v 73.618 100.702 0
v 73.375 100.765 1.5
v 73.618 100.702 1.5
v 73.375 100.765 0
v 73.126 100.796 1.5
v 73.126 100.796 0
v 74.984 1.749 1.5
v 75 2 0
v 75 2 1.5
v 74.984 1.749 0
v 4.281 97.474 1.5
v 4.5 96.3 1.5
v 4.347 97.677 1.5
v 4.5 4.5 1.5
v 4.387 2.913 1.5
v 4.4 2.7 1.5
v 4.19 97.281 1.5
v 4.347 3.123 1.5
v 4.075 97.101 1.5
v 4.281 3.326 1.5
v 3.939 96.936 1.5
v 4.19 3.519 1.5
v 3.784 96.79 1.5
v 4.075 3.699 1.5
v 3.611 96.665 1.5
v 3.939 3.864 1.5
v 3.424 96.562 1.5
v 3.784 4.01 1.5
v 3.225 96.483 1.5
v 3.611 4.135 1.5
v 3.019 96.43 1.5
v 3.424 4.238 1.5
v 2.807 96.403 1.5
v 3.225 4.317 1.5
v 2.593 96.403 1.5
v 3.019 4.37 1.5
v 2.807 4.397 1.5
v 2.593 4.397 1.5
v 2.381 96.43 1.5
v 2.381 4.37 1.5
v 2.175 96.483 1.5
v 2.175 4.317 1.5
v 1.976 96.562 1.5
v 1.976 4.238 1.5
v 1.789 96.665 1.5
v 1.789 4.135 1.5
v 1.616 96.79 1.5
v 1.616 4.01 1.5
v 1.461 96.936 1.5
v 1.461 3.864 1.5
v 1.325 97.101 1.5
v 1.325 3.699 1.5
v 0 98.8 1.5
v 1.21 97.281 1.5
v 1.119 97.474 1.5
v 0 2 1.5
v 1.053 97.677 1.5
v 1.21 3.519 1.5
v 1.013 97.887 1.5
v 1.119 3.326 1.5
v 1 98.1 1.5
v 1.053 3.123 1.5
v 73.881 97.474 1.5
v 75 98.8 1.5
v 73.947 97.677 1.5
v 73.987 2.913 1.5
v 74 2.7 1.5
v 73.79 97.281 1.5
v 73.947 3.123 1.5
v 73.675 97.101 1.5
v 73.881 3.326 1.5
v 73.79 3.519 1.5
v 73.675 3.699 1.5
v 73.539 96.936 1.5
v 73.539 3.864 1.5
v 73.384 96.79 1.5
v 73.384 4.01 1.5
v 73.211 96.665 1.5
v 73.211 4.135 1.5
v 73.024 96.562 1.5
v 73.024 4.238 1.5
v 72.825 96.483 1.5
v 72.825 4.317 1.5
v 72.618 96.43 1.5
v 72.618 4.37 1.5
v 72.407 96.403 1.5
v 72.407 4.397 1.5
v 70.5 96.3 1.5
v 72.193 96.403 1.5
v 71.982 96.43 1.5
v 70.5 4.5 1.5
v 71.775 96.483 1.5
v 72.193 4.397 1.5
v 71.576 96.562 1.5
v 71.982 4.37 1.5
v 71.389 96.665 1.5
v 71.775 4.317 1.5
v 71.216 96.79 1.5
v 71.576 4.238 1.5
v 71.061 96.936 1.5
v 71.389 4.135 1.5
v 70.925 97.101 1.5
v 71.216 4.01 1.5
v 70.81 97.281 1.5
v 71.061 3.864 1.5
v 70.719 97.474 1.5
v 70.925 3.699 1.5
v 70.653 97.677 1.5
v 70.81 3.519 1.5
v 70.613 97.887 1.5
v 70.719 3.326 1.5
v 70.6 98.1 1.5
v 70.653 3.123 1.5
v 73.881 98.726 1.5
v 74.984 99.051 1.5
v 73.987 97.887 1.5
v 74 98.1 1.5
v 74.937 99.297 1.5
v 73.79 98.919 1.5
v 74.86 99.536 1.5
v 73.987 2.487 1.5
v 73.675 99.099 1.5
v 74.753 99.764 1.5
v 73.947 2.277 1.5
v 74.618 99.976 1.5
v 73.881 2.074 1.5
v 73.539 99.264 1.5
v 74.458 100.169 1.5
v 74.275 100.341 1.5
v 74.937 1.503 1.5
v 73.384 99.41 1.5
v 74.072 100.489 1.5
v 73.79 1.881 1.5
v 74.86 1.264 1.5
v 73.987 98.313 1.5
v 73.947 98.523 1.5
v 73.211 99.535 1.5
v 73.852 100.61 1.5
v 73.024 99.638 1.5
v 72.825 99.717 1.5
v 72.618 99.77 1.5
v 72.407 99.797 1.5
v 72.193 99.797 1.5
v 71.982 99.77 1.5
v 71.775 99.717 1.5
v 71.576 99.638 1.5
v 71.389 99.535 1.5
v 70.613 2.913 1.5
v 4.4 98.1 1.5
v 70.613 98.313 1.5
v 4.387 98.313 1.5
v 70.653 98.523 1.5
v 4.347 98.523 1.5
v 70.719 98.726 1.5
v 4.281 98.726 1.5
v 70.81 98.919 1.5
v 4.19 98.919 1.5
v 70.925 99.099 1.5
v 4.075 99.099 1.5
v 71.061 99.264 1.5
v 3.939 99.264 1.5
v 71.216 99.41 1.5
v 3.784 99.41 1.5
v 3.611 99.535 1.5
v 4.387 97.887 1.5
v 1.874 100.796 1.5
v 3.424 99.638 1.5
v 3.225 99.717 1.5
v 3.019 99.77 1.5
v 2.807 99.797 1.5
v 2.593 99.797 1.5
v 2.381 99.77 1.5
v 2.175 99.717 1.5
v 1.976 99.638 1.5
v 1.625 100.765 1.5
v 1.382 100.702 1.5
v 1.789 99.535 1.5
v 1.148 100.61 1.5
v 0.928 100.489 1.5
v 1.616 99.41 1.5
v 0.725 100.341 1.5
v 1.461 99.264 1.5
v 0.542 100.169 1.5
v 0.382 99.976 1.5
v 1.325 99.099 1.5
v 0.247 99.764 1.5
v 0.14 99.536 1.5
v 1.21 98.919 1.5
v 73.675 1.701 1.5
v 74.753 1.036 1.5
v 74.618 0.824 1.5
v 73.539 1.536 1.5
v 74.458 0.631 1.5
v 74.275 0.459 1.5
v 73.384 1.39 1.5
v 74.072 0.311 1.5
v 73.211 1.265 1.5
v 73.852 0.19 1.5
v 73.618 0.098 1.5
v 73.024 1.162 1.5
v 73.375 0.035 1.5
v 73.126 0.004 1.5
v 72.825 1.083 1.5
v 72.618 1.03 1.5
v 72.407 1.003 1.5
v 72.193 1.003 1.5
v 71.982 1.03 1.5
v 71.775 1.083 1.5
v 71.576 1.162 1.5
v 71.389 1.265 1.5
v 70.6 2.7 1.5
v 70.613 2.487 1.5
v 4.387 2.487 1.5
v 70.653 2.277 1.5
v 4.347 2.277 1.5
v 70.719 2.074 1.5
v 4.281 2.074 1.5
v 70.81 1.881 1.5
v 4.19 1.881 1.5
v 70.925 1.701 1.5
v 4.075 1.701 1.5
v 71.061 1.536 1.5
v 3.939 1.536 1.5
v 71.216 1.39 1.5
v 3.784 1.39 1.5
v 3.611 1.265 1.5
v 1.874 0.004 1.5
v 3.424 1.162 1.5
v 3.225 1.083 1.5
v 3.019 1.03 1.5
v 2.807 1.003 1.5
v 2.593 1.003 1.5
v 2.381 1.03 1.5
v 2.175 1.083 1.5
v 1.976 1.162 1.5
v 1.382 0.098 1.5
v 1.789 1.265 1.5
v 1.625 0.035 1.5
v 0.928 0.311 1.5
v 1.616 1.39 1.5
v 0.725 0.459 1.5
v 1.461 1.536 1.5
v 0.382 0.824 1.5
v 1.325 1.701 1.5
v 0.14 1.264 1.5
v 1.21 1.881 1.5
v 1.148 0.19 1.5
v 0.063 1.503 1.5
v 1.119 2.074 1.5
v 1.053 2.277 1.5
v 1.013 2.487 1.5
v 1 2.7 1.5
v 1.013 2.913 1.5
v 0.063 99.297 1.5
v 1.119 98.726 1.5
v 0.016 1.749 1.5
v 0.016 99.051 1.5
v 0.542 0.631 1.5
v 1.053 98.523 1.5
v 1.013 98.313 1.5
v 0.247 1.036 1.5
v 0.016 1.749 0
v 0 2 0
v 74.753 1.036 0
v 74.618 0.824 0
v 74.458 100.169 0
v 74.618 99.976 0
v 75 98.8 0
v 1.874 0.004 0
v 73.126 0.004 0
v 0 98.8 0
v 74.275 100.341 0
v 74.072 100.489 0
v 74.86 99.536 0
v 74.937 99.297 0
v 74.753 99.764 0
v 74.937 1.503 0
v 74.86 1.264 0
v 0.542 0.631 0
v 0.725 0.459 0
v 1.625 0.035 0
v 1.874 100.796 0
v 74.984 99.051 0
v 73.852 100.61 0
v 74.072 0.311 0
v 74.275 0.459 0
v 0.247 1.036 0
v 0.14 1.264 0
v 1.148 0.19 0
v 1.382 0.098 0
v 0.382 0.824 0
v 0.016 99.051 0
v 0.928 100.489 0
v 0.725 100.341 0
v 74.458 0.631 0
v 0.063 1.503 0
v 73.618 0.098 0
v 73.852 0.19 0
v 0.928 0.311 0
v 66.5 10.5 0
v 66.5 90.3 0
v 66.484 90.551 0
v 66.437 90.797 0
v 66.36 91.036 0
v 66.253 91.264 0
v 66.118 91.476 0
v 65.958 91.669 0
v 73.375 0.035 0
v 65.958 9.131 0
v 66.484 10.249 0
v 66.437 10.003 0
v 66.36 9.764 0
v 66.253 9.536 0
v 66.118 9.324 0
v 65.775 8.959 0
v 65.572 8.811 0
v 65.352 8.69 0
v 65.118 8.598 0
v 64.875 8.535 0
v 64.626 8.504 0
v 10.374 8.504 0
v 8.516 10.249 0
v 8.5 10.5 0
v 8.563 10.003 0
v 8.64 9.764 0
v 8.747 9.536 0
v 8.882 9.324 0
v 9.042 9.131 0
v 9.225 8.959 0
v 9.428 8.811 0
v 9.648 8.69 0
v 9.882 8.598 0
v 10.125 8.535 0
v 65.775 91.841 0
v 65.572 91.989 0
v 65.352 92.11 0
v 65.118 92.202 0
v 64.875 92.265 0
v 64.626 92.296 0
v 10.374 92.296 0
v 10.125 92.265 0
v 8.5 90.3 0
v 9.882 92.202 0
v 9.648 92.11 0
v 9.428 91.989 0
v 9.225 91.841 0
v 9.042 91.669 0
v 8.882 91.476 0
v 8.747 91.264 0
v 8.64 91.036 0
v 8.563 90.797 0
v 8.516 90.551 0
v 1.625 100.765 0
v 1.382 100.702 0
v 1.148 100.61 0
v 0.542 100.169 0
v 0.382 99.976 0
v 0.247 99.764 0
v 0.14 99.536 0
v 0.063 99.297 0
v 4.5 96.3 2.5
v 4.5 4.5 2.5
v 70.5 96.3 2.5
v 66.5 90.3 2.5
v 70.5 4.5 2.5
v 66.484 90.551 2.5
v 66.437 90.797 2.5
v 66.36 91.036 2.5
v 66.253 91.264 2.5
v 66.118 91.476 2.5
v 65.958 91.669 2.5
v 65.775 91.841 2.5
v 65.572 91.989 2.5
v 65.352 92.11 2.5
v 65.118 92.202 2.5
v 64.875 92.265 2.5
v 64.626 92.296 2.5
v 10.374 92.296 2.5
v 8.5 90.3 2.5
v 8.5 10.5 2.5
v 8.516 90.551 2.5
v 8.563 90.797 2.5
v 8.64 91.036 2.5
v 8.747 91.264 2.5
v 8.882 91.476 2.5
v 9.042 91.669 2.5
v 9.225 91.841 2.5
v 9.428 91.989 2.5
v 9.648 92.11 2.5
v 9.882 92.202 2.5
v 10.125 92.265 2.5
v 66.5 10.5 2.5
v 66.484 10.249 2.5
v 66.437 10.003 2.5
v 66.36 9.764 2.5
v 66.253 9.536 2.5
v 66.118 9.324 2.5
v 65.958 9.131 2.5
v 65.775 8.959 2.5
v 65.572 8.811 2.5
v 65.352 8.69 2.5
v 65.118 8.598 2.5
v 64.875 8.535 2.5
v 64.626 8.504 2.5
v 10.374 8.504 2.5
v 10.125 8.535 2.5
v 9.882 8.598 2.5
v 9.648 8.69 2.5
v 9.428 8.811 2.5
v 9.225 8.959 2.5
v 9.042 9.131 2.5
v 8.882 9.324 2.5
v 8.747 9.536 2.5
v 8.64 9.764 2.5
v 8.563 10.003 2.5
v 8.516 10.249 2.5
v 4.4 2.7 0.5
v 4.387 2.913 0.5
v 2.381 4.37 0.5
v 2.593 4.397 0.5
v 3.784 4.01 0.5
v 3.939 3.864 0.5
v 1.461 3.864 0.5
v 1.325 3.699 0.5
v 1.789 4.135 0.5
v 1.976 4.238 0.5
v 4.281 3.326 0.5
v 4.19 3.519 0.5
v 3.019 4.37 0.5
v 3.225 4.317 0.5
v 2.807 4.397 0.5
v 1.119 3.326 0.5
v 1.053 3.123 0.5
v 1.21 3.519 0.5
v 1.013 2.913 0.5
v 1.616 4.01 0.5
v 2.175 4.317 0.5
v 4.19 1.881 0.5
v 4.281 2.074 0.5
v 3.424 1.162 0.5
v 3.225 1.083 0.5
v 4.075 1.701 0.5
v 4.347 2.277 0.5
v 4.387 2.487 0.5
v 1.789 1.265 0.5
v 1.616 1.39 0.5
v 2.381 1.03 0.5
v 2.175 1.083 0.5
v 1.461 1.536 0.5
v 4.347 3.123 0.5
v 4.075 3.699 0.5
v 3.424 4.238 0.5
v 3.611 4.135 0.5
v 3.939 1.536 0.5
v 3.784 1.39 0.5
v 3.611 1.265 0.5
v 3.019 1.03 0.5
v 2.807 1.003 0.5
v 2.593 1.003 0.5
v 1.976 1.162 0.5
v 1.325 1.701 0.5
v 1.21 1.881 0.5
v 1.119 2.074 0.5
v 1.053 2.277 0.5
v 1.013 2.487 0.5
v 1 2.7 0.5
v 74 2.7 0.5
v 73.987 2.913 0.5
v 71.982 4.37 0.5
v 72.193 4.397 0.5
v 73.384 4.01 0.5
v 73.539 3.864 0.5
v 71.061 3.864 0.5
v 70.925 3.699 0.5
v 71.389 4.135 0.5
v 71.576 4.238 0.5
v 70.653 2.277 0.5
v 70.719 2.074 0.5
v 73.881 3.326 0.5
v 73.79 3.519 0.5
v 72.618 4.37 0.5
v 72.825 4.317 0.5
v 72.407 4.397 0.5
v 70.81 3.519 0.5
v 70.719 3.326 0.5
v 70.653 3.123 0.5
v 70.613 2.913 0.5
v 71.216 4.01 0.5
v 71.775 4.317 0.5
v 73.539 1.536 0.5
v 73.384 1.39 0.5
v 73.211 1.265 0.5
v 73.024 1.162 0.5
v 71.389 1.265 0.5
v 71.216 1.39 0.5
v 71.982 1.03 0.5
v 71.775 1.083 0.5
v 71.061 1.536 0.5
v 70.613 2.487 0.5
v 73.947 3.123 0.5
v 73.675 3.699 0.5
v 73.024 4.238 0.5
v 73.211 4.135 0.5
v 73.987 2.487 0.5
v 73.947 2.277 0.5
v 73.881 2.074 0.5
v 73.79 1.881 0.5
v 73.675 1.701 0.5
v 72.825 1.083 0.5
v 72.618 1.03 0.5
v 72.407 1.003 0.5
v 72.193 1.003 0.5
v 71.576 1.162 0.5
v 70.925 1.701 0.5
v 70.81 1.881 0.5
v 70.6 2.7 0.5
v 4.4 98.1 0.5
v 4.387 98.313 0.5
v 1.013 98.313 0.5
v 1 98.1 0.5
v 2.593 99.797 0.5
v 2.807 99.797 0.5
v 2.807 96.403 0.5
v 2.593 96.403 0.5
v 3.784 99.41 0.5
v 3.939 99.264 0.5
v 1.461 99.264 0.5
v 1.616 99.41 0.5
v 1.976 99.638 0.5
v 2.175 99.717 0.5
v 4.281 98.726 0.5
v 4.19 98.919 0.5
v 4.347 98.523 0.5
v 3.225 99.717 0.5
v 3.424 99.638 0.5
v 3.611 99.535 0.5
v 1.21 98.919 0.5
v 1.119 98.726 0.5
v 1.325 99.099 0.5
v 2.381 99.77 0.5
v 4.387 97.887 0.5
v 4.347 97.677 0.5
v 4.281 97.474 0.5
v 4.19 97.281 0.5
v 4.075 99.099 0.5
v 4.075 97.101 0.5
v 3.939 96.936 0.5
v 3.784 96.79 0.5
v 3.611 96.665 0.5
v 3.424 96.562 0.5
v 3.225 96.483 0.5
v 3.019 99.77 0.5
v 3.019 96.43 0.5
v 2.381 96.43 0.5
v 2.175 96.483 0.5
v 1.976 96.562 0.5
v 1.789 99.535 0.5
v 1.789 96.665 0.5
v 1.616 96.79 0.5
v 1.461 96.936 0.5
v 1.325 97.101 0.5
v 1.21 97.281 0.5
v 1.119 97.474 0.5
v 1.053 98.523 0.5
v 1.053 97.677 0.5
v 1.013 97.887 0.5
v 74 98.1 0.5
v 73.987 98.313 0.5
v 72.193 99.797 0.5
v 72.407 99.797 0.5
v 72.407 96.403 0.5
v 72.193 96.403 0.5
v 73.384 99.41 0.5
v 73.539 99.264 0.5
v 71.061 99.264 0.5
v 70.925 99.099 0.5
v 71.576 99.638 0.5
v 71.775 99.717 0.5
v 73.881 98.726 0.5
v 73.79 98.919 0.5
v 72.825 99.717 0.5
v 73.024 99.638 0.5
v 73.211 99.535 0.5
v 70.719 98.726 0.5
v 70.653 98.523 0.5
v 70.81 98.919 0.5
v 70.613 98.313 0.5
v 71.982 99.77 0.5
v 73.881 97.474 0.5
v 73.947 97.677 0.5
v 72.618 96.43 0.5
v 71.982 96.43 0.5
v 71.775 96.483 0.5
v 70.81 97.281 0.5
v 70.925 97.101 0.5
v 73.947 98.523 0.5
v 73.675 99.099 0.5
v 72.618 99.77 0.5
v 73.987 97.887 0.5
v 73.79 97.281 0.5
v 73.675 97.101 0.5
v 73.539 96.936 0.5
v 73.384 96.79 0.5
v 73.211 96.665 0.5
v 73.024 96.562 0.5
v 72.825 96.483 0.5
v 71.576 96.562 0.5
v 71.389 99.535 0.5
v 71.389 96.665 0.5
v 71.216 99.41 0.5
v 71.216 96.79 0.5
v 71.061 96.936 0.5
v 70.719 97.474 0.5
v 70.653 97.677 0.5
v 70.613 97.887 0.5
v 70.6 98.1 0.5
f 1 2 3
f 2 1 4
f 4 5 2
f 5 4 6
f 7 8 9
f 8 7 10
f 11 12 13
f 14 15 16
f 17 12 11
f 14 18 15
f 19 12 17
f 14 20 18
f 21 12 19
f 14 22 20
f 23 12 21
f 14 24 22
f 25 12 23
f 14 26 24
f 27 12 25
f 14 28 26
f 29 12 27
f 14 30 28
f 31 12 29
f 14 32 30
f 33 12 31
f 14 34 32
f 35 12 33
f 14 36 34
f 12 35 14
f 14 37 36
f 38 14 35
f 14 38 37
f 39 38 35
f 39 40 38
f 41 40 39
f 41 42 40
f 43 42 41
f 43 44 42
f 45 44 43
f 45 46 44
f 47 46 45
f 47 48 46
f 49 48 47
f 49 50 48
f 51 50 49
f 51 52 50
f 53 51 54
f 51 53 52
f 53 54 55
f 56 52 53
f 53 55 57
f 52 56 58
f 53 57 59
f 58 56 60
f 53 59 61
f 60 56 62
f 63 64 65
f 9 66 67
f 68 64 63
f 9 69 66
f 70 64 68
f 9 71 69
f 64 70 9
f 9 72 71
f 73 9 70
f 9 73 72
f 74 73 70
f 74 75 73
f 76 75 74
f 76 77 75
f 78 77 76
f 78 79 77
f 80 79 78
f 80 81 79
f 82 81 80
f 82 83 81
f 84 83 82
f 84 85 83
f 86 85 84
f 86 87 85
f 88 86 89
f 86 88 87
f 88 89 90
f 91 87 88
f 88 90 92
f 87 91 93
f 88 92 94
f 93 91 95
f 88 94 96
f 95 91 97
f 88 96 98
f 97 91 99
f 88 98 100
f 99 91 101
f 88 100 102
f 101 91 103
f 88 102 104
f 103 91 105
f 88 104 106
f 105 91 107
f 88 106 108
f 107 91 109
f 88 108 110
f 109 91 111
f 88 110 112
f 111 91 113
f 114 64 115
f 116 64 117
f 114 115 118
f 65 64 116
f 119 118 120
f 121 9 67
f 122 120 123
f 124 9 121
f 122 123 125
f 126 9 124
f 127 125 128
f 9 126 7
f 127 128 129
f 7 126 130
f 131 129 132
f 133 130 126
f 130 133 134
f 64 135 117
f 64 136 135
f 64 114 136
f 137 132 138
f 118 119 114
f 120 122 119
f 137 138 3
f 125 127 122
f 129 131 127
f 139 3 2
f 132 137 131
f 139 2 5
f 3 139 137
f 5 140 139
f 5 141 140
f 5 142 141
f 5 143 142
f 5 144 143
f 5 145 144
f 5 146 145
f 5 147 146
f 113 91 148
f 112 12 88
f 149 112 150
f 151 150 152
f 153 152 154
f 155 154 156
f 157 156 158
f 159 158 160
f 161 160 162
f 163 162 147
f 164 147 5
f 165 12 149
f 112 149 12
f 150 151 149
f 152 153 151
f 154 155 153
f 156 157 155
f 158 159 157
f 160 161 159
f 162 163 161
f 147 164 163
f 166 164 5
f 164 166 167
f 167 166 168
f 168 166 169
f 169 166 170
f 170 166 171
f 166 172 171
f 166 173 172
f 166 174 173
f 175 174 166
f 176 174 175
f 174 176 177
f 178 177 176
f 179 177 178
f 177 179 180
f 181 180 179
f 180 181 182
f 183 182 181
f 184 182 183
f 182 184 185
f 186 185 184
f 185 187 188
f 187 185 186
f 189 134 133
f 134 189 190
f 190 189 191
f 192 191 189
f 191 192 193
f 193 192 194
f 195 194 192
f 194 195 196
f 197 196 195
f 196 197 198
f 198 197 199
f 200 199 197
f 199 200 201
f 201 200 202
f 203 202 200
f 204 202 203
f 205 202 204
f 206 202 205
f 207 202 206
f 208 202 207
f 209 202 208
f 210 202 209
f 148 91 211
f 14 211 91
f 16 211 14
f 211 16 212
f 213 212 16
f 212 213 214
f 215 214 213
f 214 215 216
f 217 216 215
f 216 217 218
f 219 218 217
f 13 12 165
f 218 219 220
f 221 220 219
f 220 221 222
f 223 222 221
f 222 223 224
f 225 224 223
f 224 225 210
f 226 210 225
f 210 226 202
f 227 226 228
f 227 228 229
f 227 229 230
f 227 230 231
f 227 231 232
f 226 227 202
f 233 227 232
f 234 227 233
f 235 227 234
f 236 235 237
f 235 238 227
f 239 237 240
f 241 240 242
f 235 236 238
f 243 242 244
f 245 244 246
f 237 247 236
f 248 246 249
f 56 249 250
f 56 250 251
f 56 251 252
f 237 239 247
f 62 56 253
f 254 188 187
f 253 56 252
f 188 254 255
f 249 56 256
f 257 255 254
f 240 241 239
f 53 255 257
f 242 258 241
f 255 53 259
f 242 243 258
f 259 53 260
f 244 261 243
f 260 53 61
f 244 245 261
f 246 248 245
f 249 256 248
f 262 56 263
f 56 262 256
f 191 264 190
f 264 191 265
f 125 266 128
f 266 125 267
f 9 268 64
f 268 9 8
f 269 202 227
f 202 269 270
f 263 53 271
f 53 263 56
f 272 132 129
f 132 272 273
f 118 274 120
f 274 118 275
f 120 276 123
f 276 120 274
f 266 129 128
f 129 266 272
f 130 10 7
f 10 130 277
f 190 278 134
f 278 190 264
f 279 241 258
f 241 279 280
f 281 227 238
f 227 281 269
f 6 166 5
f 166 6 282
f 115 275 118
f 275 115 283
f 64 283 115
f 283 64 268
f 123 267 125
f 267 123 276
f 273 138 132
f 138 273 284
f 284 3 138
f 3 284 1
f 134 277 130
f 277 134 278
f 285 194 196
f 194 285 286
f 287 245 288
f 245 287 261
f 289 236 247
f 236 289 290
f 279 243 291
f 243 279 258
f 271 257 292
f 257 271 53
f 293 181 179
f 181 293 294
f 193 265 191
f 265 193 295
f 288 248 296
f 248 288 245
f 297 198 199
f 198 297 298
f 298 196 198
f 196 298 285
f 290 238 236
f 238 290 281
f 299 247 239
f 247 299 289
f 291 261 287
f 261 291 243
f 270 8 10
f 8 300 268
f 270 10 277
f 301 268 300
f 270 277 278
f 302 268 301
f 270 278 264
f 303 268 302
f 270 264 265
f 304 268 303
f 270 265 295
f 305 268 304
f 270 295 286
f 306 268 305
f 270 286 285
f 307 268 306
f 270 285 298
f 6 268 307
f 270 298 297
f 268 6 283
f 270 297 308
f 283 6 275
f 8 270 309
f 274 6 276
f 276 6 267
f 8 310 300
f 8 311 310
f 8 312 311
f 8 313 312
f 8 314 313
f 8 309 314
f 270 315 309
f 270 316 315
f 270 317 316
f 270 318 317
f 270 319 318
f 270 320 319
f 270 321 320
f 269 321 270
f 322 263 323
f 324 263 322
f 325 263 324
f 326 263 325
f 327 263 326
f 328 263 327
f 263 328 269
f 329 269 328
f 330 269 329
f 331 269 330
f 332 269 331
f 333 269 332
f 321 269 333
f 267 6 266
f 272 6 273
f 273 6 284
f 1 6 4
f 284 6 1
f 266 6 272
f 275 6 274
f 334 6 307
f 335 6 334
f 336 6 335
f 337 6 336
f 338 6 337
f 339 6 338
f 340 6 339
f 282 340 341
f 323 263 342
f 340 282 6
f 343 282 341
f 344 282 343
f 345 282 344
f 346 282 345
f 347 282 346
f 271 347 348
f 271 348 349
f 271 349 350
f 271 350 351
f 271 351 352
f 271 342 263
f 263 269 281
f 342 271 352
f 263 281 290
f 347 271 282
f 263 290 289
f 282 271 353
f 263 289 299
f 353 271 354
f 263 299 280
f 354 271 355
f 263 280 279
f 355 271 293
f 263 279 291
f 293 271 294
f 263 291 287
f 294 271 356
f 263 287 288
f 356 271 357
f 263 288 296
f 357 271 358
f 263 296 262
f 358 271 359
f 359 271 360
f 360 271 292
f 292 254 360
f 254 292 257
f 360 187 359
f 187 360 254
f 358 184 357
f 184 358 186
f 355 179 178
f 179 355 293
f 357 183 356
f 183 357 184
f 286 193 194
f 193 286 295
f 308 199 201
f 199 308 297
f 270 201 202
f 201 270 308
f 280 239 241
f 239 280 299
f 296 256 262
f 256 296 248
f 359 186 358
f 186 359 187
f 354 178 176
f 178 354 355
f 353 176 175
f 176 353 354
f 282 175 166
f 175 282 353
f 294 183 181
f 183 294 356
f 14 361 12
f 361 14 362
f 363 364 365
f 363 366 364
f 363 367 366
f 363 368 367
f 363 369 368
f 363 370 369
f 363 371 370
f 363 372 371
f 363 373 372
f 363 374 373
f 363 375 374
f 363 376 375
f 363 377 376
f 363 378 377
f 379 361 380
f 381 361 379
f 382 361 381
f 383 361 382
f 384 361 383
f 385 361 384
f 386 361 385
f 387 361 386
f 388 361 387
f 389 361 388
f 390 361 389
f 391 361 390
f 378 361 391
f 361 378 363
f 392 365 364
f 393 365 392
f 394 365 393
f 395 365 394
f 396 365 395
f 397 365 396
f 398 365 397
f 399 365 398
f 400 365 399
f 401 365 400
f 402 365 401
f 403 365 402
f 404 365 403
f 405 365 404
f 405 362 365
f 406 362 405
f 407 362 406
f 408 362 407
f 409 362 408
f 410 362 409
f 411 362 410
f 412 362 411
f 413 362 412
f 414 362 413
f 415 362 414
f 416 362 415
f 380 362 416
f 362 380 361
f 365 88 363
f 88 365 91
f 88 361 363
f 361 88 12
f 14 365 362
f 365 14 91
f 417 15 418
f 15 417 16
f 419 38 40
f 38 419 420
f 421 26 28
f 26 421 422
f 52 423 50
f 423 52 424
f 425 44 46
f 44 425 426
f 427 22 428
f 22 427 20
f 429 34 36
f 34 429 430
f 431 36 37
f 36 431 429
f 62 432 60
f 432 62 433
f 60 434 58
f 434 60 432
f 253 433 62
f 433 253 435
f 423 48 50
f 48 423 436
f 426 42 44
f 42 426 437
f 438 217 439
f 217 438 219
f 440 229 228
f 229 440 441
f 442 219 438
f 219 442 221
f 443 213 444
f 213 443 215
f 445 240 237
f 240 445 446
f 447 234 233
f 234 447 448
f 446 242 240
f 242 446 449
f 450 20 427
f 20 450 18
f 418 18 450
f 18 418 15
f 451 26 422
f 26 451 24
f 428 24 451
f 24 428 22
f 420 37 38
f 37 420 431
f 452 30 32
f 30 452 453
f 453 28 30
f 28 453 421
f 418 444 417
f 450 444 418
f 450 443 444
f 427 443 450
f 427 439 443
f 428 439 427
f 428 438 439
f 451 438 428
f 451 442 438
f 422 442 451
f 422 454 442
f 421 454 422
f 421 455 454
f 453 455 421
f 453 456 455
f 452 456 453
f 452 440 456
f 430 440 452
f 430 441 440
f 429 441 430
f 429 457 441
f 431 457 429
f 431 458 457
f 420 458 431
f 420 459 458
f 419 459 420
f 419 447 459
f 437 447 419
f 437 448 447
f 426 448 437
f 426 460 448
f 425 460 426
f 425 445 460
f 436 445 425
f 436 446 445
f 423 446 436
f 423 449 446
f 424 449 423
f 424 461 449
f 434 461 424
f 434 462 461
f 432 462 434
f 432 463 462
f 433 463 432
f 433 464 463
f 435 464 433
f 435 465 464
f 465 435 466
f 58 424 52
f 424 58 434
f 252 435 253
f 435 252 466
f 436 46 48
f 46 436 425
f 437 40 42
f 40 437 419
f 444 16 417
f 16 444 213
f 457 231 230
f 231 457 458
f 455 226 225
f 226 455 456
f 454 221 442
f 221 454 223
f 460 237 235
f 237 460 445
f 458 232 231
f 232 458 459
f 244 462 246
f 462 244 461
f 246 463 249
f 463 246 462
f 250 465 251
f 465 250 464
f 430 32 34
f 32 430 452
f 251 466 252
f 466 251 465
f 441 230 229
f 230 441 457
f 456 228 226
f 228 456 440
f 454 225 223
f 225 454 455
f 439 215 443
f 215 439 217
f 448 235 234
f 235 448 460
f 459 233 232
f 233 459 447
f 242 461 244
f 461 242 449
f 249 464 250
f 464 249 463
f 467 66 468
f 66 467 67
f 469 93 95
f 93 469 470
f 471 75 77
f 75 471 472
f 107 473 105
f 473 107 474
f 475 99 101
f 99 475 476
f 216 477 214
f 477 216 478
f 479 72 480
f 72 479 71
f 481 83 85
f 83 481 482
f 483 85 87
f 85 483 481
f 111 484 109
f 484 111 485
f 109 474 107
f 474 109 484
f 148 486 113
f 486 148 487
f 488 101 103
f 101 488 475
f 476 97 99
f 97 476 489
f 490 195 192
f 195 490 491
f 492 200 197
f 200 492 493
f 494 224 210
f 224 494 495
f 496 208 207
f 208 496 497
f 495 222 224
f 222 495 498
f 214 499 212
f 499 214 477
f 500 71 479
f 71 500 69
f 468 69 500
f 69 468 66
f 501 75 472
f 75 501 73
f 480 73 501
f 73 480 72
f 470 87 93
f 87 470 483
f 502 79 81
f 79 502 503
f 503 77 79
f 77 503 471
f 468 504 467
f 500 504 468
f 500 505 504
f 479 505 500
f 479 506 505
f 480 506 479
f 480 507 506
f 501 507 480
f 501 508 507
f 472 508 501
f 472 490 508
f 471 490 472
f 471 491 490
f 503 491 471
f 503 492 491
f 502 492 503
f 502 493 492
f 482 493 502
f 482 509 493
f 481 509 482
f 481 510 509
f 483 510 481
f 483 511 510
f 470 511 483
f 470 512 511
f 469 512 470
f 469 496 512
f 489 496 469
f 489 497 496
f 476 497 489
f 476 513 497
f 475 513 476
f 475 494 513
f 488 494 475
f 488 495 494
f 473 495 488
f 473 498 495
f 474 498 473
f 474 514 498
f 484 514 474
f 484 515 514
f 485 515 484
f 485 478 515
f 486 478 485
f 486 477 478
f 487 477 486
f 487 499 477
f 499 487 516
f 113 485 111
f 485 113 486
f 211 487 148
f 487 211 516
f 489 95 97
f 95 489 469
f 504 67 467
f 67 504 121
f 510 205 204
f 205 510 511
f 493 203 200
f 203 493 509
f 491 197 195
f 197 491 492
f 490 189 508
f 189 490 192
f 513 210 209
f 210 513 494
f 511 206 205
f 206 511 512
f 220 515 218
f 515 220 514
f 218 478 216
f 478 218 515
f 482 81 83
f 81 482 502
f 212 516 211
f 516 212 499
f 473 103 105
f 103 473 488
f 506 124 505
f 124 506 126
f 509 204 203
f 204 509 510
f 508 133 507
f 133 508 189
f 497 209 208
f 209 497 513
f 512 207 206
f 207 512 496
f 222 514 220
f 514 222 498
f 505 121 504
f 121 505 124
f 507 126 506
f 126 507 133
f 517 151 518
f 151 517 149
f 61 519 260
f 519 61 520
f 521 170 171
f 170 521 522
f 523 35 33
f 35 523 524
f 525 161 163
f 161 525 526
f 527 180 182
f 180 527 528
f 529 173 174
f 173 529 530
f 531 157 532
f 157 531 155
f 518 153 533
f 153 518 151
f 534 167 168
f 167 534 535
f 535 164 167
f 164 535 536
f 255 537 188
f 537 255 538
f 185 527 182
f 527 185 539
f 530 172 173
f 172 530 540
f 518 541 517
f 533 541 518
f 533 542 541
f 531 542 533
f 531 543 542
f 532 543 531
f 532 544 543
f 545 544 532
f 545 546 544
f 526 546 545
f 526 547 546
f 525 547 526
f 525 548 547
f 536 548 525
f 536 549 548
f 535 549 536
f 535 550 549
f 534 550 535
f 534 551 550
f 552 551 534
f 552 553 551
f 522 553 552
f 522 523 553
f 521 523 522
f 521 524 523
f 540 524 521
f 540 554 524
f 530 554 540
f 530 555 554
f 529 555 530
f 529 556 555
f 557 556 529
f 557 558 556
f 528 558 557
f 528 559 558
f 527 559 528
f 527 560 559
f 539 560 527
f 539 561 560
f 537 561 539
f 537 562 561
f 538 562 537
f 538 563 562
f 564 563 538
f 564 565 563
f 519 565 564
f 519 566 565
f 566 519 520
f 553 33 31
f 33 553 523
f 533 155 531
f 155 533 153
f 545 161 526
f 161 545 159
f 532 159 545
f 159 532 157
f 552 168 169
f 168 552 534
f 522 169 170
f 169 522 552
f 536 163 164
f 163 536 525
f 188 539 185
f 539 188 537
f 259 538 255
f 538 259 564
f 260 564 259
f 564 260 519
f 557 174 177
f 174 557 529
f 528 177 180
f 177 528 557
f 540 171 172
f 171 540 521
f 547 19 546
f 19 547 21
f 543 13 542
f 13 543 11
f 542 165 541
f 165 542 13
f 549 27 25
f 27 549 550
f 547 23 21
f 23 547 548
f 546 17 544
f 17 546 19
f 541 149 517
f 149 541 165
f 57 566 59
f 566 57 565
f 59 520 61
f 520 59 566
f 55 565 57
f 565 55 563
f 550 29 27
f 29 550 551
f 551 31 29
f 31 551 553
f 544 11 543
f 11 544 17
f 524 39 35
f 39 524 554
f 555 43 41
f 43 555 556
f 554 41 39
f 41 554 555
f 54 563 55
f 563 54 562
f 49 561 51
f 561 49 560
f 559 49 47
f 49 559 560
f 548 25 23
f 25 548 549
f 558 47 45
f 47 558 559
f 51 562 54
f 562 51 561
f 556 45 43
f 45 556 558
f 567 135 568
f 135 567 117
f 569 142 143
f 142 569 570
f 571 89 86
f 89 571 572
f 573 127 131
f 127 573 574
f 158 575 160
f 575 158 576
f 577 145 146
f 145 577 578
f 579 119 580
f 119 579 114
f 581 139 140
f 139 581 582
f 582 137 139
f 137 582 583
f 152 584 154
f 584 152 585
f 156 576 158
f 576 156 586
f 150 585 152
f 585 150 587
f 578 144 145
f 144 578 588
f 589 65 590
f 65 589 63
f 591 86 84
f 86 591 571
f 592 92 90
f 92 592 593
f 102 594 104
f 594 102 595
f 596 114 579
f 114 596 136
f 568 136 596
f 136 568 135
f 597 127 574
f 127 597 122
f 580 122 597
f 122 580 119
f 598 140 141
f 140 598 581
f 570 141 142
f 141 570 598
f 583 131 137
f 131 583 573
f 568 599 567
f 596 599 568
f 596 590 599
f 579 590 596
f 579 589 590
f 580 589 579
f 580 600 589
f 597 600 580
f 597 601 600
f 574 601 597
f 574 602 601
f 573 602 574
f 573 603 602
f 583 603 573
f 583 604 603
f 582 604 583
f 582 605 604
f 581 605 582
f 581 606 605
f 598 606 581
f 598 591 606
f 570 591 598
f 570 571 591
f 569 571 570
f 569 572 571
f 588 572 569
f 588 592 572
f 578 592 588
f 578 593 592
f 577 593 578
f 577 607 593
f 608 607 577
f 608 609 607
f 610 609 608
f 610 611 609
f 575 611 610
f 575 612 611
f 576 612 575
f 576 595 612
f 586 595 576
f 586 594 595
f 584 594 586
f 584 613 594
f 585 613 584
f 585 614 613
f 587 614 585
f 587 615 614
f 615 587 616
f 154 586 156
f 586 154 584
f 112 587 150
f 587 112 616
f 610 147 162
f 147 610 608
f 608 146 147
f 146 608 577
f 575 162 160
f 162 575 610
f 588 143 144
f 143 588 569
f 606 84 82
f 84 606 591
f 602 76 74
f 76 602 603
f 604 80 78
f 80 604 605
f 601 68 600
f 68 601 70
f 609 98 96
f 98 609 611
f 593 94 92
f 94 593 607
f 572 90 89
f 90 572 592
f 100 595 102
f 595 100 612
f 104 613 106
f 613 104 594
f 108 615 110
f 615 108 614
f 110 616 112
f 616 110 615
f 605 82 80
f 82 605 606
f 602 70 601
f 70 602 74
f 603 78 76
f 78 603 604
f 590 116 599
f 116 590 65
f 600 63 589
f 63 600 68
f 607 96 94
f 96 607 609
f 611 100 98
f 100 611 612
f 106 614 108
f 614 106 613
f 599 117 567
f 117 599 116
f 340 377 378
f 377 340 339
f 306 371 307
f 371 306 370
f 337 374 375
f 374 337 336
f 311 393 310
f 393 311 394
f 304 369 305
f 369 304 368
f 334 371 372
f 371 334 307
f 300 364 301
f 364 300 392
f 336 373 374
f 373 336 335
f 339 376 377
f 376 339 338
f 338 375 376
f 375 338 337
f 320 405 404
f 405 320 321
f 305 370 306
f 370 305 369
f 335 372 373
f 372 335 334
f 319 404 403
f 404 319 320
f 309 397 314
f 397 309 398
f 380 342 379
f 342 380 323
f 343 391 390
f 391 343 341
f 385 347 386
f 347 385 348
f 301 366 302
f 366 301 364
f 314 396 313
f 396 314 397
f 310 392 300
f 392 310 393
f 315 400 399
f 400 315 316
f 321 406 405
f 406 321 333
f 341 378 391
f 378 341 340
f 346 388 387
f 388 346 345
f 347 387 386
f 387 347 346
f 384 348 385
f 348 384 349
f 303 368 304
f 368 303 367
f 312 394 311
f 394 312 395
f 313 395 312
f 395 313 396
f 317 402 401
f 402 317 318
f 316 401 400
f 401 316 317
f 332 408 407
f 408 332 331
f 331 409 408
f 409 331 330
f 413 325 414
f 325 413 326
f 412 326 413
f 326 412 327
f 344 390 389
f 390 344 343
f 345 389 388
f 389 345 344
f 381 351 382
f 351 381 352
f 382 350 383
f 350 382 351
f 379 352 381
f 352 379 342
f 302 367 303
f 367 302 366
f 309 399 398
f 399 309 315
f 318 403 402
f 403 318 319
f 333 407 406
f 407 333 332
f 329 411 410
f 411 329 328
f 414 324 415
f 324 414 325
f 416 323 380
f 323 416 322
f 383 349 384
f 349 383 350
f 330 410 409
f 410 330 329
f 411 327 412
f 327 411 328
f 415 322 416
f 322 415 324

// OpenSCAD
// file: ../../lib/flat_rounded_cube.scad
$bleed = 1;
$rounding = 3;

min_cylinder_height = 1;

module flat_rounded_cube(size) {
  width = size[0] - $rounding * 2;
  length = size[1] - $rounding * 2;

  // Only 1 count of min_cynlinder_height not 2;
  // cylinder does not extend the bottom because it's flush
  height = size[2] - min_cylinder_height; 

  minkowski() {
    translate([$rounding, $rounding, 0]) {
      cube([width, length, height]);
    }
    cylinder(min_cylinder_height, $rounding, $rounding);
  }
}
// main file
echo(version=version());

include <../../lib/flat_rounded_cube.scad>

// Config
$fn = 50;
$bleed = 1;
$rounding = 2;

// Attributes
inset = 1;
magnet_height = 1;
magnet_diameter = 3.4;
corner_magnet_buffer = 1;
border_width = 4.5;
card_width = 66;
card_length = 91.8;
window_buffer = 4;

// Derived Attributes
base_height = magnet_height + 0.5;
corner_magnet_offset = corner_magnet_buffer + magnet_diameter / 2;

card_size = [
  card_width,
  card_length,
  inset
];

card_window_size = [
  card_size[0] - window_buffer*2,
  card_size[1] - window_buffer*2,
  base_height + inset + $bleed*2
];

base_size = [
  card_size[0] + border_width*2,
  card_size[1] + border_width*2,
  base_height
];

card_offset = [
  (base_size[0] - card_size[0]) / 2,
  (base_size[1] - card_size[1]) / 2,
  base_height
];

card_window_offset = [
  card_offset[0] + window_buffer,
  card_offset[1] + window_buffer,
  -$bleed
];

corner_hole_offsets = [
  [corner_magnet_offset, corner_magnet_offset],
  [base_size[0] - corner_magnet_offset, corner_magnet_offset],
  [corner_magnet_offset, base_size[1] - corner_magnet_offset],
  [base_size[0] - corner_magnet_offset, base_size[1] - corner_magnet_offset],
];

// Model
difference() {
  // Base
  union() {
    flat_rounded_cube(base_size);
    translate(card_offset) {
      cube(card_size);
    }
  }
  translate(card_window_offset) {
    flat_rounded_cube(card_window_size);
  }
  translate([0, 0, base_height-magnet_height]) {
    // Cut out corner magnet holes
    for (i=corner_hole_offsets) {
      translate([i[0], i[1], 0]) {
        cylinder(h=magnet_height + $bleed, d=magnet_diameter);
      }
    }
  }
}
